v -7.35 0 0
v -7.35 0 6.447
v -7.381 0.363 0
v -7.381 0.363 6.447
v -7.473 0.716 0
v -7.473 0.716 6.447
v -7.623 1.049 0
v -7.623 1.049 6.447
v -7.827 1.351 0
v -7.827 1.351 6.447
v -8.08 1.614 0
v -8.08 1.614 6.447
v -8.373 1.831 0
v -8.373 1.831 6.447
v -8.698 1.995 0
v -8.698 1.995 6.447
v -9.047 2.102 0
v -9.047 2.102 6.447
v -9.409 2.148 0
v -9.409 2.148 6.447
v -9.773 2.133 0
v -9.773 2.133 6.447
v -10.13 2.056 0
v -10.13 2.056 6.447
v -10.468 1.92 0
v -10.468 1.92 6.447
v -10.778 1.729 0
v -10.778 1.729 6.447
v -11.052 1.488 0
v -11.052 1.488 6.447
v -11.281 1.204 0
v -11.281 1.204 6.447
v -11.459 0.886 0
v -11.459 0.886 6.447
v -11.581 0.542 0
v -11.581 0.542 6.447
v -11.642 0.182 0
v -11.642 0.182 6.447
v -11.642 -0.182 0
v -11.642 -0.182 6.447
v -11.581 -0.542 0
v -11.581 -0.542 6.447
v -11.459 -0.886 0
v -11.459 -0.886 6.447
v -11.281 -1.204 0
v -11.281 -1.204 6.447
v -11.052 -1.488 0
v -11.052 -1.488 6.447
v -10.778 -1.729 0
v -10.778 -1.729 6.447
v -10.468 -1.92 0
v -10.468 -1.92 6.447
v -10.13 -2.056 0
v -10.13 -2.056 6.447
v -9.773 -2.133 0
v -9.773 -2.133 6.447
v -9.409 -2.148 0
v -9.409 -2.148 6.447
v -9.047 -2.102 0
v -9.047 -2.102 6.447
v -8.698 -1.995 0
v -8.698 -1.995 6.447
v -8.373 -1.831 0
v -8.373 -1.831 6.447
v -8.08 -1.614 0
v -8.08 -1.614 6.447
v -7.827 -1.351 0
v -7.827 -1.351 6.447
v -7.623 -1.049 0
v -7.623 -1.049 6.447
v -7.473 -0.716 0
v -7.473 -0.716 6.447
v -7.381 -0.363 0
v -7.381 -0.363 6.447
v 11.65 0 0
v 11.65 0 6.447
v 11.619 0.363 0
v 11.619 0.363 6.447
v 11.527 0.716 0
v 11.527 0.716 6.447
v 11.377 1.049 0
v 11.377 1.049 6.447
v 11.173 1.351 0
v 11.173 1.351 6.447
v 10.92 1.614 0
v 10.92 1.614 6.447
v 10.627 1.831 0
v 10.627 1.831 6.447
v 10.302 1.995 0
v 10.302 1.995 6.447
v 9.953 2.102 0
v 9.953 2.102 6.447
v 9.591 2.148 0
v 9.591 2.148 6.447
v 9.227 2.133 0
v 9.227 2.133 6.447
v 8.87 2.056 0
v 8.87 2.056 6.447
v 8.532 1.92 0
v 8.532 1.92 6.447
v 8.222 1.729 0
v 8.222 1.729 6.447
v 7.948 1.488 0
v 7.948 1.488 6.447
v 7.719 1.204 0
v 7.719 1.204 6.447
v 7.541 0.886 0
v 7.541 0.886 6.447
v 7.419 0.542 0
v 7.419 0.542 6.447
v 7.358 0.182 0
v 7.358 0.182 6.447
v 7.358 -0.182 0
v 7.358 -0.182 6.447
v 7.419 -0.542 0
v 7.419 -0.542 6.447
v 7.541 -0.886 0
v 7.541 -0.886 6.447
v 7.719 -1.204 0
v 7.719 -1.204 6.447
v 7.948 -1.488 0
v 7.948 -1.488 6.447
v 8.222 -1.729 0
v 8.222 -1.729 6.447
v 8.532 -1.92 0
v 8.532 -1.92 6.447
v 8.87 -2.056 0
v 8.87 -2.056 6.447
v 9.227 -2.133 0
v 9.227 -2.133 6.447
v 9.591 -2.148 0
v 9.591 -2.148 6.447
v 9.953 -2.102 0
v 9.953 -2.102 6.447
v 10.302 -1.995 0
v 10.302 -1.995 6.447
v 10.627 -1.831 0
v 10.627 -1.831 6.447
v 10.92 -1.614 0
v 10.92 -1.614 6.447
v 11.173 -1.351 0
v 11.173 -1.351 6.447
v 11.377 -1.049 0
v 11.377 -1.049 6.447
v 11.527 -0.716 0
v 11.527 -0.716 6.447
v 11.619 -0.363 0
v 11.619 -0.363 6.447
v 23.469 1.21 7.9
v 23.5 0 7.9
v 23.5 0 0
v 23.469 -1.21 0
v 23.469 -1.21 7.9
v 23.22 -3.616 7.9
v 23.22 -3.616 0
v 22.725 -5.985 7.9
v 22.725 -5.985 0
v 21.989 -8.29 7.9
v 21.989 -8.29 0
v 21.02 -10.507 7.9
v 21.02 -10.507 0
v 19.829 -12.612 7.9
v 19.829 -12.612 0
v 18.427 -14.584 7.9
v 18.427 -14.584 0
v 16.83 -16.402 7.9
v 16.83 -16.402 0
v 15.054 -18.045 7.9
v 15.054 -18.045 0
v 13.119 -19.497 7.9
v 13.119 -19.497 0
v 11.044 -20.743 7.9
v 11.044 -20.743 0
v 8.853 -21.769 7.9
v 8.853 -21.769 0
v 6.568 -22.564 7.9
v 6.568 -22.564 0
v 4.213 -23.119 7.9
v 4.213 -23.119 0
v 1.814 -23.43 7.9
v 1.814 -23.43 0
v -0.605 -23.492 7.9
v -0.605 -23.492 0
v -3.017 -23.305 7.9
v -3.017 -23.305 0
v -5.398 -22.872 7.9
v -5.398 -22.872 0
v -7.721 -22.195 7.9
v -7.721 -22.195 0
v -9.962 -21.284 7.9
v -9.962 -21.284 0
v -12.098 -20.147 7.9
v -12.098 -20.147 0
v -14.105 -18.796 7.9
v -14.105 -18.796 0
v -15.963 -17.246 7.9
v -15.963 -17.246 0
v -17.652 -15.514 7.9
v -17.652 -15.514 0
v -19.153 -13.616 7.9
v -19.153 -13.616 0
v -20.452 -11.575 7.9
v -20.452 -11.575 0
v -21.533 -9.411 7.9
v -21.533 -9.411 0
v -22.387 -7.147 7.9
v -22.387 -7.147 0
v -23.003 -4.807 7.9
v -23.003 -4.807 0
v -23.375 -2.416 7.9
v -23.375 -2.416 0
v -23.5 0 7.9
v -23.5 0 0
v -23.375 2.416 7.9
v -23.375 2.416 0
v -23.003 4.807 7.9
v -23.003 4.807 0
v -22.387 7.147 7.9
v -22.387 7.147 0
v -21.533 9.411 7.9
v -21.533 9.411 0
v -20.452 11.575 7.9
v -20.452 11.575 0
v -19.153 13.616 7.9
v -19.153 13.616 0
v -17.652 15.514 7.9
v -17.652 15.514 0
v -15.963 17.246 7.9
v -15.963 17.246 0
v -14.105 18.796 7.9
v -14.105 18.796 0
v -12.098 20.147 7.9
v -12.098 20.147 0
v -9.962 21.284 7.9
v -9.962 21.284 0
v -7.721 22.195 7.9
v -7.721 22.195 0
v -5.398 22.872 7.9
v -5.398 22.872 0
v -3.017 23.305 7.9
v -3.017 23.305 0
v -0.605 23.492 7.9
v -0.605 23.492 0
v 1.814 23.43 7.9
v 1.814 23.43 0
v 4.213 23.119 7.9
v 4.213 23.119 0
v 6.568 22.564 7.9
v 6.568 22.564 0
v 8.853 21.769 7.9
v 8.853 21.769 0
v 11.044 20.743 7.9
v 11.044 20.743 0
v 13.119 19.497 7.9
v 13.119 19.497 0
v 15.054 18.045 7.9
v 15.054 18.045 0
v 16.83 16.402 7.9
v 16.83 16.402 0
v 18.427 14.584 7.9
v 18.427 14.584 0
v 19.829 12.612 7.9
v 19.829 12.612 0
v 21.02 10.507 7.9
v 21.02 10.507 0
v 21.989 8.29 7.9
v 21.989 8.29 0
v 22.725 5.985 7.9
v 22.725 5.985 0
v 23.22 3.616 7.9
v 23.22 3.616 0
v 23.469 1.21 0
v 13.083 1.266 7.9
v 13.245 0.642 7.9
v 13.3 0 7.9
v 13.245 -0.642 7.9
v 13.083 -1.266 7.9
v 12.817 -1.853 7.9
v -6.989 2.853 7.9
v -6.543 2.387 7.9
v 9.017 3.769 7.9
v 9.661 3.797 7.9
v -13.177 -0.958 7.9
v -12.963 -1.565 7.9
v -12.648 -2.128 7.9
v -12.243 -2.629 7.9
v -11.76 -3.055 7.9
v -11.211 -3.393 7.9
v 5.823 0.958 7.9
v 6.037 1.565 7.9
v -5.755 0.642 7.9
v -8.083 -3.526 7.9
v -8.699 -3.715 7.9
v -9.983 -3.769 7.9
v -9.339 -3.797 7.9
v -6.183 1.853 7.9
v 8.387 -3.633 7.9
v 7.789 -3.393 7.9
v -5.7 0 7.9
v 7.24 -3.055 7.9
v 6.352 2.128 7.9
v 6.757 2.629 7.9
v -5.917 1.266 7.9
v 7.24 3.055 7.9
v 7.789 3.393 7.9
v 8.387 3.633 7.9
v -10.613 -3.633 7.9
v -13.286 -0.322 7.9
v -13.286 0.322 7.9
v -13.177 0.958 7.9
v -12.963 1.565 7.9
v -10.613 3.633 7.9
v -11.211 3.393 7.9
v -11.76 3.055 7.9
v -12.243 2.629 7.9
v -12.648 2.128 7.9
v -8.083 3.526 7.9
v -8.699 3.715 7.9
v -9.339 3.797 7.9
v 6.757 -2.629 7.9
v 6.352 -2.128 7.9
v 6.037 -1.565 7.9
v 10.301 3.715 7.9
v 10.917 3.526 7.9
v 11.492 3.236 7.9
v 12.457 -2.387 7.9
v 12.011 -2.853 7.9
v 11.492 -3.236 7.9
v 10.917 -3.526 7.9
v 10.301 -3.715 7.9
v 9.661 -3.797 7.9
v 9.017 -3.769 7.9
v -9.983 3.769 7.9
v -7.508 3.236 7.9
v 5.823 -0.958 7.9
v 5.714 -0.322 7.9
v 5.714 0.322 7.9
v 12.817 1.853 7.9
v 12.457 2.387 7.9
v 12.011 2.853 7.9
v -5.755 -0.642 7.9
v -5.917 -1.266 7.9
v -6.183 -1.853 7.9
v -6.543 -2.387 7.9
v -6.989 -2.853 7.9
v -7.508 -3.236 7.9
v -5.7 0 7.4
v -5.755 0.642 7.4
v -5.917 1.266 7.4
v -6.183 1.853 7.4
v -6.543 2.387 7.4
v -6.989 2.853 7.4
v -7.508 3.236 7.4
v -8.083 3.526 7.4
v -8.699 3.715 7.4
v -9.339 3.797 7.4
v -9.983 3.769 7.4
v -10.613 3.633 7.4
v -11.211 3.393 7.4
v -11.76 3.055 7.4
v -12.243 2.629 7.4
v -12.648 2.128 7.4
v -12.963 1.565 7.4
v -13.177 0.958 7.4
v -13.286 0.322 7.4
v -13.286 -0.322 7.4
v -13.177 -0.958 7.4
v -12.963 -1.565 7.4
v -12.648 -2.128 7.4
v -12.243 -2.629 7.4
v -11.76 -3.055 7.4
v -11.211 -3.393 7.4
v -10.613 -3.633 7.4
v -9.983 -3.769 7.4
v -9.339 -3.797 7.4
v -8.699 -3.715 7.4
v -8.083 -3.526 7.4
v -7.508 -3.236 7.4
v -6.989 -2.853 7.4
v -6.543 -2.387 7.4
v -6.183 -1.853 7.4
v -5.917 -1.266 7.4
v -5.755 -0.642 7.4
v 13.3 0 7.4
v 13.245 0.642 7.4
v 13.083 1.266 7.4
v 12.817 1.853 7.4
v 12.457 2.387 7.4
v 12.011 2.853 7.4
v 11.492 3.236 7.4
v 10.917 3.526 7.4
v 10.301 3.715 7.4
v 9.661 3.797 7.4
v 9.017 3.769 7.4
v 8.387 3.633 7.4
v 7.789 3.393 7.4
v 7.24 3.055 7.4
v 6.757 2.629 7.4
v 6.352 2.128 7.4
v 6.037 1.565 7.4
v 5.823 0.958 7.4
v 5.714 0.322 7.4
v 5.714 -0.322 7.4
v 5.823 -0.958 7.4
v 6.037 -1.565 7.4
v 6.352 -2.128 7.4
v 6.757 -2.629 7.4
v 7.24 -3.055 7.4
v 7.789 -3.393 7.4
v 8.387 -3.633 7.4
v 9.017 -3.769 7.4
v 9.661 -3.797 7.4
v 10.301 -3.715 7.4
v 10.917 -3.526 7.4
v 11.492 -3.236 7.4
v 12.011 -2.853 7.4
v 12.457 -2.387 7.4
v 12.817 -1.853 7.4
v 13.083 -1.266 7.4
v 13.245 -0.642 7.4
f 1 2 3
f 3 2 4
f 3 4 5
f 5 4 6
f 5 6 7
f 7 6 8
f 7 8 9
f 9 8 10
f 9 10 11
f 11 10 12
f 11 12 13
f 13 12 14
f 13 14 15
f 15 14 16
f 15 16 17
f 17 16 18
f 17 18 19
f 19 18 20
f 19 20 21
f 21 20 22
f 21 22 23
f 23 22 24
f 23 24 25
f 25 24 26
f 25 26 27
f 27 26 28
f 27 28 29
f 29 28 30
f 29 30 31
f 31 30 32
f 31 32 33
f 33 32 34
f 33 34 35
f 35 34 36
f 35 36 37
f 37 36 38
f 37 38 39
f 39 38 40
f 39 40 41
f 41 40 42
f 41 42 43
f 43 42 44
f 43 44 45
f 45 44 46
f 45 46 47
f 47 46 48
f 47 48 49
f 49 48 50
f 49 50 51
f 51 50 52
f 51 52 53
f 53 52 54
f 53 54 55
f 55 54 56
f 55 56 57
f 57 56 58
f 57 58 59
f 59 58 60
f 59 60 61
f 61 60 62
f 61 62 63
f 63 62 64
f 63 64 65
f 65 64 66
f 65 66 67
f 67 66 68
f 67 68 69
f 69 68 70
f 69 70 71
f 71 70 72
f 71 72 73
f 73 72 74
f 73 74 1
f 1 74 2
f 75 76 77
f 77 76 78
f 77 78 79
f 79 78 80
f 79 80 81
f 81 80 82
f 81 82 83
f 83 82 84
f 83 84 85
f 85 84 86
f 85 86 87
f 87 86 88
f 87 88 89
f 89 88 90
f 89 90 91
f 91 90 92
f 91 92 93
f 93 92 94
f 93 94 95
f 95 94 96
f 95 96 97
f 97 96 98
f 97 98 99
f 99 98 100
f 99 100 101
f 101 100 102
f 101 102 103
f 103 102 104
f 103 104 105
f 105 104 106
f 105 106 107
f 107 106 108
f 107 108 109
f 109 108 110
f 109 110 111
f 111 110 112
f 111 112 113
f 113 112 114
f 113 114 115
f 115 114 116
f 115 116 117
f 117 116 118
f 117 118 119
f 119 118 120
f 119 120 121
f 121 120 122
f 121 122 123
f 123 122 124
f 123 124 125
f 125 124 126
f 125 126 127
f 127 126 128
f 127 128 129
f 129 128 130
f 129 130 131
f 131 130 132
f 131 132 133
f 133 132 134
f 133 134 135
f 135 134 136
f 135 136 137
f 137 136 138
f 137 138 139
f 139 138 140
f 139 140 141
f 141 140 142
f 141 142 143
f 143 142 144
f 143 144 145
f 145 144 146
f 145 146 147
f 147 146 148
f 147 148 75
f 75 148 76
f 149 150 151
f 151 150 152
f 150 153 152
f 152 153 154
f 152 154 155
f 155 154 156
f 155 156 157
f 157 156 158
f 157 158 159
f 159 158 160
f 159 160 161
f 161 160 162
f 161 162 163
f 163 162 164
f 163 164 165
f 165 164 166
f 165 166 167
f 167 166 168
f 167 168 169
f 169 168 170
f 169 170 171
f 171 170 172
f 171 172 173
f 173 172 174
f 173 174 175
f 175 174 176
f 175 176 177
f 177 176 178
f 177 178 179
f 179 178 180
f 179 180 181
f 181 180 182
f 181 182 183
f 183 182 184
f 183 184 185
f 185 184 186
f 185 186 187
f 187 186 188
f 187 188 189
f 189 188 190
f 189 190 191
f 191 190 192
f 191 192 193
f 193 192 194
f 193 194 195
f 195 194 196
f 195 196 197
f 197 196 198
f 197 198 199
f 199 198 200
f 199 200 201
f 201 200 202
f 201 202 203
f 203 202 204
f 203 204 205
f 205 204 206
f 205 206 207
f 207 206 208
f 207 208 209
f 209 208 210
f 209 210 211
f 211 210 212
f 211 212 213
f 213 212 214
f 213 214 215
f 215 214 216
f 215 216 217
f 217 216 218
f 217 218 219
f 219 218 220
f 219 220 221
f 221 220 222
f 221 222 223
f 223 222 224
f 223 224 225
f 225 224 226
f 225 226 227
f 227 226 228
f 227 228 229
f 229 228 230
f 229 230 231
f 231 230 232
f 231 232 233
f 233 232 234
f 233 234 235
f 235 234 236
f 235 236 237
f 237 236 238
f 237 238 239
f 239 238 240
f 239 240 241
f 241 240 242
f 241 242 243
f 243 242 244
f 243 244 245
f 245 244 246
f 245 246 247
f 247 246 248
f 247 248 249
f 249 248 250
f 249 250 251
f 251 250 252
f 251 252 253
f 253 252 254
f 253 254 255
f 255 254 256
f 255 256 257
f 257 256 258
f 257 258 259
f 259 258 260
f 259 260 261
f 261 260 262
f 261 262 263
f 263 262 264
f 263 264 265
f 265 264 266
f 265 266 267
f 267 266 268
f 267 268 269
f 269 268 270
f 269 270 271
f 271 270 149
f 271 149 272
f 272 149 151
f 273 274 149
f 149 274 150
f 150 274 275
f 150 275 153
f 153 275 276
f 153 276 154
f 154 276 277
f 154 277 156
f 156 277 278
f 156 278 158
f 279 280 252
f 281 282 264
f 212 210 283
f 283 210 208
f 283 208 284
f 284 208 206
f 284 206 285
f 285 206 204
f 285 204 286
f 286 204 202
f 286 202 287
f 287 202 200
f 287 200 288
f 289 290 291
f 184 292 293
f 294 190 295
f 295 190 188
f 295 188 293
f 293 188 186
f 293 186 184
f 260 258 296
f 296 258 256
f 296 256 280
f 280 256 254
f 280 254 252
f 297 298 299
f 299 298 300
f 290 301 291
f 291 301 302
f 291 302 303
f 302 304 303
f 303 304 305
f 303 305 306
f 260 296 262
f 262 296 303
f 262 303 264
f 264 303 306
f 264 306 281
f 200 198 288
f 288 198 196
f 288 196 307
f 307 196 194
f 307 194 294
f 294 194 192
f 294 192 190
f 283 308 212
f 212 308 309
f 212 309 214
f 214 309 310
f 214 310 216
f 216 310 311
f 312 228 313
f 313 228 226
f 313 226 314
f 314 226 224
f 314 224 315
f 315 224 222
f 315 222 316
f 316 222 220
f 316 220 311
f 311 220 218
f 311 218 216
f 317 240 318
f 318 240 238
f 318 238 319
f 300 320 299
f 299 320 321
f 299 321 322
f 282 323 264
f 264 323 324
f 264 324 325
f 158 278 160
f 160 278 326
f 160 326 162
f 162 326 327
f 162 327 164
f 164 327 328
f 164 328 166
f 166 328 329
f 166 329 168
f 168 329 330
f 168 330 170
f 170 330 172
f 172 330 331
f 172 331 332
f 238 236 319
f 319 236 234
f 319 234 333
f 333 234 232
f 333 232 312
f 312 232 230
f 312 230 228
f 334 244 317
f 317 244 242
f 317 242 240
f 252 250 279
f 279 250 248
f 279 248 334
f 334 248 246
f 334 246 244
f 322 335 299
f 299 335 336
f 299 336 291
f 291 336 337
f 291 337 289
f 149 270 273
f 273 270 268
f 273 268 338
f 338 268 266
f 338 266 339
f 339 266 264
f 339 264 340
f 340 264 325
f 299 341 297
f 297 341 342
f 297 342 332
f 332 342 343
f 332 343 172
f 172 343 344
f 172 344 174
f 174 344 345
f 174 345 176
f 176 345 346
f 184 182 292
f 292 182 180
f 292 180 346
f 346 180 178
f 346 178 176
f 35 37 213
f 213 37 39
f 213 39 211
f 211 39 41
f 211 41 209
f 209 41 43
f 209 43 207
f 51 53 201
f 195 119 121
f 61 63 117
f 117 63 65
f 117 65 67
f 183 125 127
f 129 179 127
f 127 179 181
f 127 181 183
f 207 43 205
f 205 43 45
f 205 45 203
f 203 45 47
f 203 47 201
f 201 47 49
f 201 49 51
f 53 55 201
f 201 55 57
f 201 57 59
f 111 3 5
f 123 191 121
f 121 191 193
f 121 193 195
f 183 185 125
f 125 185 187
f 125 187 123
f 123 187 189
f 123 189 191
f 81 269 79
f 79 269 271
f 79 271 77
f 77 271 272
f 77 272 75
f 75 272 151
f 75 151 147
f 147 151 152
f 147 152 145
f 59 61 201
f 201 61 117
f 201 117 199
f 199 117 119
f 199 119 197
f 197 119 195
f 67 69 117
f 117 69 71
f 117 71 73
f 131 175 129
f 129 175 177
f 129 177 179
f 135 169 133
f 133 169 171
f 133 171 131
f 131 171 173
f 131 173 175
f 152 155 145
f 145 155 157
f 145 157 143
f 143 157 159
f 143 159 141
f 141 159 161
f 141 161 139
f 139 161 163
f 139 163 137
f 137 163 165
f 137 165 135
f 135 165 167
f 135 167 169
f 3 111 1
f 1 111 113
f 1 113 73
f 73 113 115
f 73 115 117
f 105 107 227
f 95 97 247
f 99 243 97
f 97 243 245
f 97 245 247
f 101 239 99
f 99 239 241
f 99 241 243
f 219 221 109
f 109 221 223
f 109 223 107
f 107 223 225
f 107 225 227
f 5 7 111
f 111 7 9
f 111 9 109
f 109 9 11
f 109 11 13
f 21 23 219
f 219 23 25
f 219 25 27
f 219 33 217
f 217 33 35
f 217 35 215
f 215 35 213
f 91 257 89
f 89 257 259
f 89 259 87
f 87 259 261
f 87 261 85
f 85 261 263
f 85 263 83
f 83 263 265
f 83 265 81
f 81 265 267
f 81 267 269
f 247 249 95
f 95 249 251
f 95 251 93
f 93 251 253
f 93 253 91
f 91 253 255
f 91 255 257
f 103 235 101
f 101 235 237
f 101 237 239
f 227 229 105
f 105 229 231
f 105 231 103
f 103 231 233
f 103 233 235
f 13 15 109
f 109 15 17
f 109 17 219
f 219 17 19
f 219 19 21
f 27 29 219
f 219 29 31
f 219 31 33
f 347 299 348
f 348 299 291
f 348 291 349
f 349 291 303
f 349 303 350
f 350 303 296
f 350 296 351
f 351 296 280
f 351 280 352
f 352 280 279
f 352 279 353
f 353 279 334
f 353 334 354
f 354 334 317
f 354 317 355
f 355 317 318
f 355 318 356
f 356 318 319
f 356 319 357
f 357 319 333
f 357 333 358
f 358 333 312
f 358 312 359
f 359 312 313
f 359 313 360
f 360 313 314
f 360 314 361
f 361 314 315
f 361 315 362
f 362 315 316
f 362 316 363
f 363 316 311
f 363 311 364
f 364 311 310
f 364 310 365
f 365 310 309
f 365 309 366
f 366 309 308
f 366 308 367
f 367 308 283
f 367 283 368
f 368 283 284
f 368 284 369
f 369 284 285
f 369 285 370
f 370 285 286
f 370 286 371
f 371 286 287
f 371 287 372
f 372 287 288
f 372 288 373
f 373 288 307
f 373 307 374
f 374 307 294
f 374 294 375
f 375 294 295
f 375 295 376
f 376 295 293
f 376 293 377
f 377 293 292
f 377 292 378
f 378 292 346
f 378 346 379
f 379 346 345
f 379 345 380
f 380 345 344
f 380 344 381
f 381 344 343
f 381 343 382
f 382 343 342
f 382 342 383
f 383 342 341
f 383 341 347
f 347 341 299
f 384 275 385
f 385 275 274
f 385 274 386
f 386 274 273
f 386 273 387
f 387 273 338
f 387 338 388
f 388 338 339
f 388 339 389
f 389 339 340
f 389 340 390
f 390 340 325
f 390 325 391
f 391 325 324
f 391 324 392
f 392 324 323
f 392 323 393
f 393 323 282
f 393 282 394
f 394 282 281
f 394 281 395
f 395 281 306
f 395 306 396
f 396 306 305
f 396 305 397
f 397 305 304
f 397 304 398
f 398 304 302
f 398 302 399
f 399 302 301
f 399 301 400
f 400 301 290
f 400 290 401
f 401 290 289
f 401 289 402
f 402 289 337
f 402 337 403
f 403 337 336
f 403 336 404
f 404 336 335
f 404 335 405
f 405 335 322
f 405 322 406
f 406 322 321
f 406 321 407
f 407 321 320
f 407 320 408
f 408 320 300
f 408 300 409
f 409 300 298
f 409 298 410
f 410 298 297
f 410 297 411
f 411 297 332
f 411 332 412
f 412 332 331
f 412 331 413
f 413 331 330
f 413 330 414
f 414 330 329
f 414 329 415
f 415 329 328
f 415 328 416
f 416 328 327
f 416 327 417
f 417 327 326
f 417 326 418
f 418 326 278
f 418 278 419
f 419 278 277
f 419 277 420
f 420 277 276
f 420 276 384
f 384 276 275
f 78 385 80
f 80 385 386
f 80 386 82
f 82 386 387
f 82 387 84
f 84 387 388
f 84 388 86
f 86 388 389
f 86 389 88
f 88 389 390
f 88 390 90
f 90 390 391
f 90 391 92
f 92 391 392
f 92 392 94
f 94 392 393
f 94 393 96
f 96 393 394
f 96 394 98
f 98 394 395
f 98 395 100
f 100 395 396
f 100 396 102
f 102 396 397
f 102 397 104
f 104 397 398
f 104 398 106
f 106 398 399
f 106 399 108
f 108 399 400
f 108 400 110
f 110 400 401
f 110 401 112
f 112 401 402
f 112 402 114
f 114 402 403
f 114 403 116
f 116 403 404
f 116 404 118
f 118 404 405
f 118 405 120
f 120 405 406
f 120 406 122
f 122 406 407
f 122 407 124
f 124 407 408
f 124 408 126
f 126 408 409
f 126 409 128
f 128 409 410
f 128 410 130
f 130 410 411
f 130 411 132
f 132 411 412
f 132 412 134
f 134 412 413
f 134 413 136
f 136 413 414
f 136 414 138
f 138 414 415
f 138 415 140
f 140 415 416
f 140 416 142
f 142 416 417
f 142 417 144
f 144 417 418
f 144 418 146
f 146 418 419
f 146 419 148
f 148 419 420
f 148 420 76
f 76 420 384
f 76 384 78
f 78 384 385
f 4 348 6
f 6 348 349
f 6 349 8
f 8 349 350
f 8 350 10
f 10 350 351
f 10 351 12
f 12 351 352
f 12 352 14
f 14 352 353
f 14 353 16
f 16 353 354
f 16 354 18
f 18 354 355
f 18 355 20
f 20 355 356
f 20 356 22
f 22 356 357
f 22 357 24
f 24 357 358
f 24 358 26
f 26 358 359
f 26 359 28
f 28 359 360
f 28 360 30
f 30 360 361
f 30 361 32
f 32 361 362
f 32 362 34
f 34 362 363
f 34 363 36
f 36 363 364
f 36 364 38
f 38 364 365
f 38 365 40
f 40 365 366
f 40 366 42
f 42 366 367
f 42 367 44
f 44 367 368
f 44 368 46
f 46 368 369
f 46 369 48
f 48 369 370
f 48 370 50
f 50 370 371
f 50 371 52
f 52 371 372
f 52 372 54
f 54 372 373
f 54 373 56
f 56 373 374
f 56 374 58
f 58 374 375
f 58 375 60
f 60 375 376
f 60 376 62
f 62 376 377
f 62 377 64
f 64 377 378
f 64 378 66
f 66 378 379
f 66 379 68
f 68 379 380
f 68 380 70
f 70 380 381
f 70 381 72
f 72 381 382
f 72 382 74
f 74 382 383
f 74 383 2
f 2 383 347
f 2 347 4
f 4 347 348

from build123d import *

# Parameters (mm, degrees)
SKETCH1_R           = 23.5
BOSS_EXTRUDE1_DEPTH = 7.9
CUT_EXTRUDE1_REACH  = 36.16
SKETCH2_R           = 2.15
SKETCH3_R           = 3.8
CUT_EXTRUDE2_DEPTH  = 0.5


with BuildPart() as part:
    # Sketch1 → Boss-Extrude1 (new body)
    with BuildSketch(Plane.XY):
        Circle(SKETCH1_R)
    extrude(amount=BOSS_EXTRUDE1_DEPTH)

    # Sketch2 → Cut-Extrude1 (cut, up to next)
    with BuildSketch(Plane.XY.offset(7.9), mode=Mode.PRIVATE) as cut_extrude1_sk1:
        with Locations((-9.5, 0)):
            Circle(SKETCH2_R)
    cut_extrude1_tool1 = extrude(cut_extrude1_sk1.sketch, amount=-CUT_EXTRUDE1_REACH, mode=Mode.PRIVATE) & part.part
    # Sketch2 → Cut-Extrude1 (cut, up to next)
    with BuildSketch(Plane.XY.offset(7.9), mode=Mode.PRIVATE) as cut_extrude1_sk2:
        with Locations((9.5, 0)):
            Circle(SKETCH2_R)
    cut_extrude1_tool2 = extrude(cut_extrude1_sk2.sketch, amount=-CUT_EXTRUDE1_REACH, mode=Mode.PRIVATE) & part.part
    add(cut_extrude1_tool1.solids().sort_by_distance((-9.5, 0, 7.9))[0], mode=Mode.SUBTRACT)
    add(cut_extrude1_tool2.solids().sort_by_distance((9.5, 0, 7.9))[0], mode=Mode.SUBTRACT)

    # Sketch3 → Cut-Extrude2 (cut)
    with BuildSketch(Plane.XY.offset(7.9)):
        with Locations((-9.5, 0)):
            Circle(SKETCH3_R)
        with Locations((9.5, 0)):
            Circle(SKETCH3_R)
    extrude(amount=-CUT_EXTRUDE2_DEPTH, mode=Mode.SUBTRACT)

    # Sketch7 → Cut-Revolve5 (revolve, cut)
    with BuildSketch(Plane(origin=(0, 0, 0), x_dir=(1, 0, 0), z_dir=(0, 1, 0)), mode=Mode.PRIVATE) as cut_revolve5_sk:
        Polygon((9.5, -7.4), (9.5, -5.206068977), (5.7, -7.4), align=None)
    revolve(cut_revolve5_sk.sketch.rotate(Axis((9.5, 0, 7.4), (0, 0, -1)), 180), axis=Axis((9.5, 0, 7.4), (0, 0, -1)), mode=Mode.SUBTRACT)

    # Sketch6 → Cut-Revolve6 (revolve, cut)
    with BuildSketch(Plane(origin=(0, 0, 0), x_dir=(1, 0, 0), z_dir=(0, 1, 0)), mode=Mode.PRIVATE) as cut_revolve6_sk:
        Polygon((-9.5, -7.4), (-9.5, -5.206068977), (-13.3, -7.4), align=None)
    revolve(cut_revolve6_sk.sketch.rotate(Axis((-9.5, 0, 7.4), (0, 0, -1)), 180), axis=Axis((-9.5, 0, 7.4), (0, 0, -1)), mode=Mode.SUBTRACT)


solid = part.part
